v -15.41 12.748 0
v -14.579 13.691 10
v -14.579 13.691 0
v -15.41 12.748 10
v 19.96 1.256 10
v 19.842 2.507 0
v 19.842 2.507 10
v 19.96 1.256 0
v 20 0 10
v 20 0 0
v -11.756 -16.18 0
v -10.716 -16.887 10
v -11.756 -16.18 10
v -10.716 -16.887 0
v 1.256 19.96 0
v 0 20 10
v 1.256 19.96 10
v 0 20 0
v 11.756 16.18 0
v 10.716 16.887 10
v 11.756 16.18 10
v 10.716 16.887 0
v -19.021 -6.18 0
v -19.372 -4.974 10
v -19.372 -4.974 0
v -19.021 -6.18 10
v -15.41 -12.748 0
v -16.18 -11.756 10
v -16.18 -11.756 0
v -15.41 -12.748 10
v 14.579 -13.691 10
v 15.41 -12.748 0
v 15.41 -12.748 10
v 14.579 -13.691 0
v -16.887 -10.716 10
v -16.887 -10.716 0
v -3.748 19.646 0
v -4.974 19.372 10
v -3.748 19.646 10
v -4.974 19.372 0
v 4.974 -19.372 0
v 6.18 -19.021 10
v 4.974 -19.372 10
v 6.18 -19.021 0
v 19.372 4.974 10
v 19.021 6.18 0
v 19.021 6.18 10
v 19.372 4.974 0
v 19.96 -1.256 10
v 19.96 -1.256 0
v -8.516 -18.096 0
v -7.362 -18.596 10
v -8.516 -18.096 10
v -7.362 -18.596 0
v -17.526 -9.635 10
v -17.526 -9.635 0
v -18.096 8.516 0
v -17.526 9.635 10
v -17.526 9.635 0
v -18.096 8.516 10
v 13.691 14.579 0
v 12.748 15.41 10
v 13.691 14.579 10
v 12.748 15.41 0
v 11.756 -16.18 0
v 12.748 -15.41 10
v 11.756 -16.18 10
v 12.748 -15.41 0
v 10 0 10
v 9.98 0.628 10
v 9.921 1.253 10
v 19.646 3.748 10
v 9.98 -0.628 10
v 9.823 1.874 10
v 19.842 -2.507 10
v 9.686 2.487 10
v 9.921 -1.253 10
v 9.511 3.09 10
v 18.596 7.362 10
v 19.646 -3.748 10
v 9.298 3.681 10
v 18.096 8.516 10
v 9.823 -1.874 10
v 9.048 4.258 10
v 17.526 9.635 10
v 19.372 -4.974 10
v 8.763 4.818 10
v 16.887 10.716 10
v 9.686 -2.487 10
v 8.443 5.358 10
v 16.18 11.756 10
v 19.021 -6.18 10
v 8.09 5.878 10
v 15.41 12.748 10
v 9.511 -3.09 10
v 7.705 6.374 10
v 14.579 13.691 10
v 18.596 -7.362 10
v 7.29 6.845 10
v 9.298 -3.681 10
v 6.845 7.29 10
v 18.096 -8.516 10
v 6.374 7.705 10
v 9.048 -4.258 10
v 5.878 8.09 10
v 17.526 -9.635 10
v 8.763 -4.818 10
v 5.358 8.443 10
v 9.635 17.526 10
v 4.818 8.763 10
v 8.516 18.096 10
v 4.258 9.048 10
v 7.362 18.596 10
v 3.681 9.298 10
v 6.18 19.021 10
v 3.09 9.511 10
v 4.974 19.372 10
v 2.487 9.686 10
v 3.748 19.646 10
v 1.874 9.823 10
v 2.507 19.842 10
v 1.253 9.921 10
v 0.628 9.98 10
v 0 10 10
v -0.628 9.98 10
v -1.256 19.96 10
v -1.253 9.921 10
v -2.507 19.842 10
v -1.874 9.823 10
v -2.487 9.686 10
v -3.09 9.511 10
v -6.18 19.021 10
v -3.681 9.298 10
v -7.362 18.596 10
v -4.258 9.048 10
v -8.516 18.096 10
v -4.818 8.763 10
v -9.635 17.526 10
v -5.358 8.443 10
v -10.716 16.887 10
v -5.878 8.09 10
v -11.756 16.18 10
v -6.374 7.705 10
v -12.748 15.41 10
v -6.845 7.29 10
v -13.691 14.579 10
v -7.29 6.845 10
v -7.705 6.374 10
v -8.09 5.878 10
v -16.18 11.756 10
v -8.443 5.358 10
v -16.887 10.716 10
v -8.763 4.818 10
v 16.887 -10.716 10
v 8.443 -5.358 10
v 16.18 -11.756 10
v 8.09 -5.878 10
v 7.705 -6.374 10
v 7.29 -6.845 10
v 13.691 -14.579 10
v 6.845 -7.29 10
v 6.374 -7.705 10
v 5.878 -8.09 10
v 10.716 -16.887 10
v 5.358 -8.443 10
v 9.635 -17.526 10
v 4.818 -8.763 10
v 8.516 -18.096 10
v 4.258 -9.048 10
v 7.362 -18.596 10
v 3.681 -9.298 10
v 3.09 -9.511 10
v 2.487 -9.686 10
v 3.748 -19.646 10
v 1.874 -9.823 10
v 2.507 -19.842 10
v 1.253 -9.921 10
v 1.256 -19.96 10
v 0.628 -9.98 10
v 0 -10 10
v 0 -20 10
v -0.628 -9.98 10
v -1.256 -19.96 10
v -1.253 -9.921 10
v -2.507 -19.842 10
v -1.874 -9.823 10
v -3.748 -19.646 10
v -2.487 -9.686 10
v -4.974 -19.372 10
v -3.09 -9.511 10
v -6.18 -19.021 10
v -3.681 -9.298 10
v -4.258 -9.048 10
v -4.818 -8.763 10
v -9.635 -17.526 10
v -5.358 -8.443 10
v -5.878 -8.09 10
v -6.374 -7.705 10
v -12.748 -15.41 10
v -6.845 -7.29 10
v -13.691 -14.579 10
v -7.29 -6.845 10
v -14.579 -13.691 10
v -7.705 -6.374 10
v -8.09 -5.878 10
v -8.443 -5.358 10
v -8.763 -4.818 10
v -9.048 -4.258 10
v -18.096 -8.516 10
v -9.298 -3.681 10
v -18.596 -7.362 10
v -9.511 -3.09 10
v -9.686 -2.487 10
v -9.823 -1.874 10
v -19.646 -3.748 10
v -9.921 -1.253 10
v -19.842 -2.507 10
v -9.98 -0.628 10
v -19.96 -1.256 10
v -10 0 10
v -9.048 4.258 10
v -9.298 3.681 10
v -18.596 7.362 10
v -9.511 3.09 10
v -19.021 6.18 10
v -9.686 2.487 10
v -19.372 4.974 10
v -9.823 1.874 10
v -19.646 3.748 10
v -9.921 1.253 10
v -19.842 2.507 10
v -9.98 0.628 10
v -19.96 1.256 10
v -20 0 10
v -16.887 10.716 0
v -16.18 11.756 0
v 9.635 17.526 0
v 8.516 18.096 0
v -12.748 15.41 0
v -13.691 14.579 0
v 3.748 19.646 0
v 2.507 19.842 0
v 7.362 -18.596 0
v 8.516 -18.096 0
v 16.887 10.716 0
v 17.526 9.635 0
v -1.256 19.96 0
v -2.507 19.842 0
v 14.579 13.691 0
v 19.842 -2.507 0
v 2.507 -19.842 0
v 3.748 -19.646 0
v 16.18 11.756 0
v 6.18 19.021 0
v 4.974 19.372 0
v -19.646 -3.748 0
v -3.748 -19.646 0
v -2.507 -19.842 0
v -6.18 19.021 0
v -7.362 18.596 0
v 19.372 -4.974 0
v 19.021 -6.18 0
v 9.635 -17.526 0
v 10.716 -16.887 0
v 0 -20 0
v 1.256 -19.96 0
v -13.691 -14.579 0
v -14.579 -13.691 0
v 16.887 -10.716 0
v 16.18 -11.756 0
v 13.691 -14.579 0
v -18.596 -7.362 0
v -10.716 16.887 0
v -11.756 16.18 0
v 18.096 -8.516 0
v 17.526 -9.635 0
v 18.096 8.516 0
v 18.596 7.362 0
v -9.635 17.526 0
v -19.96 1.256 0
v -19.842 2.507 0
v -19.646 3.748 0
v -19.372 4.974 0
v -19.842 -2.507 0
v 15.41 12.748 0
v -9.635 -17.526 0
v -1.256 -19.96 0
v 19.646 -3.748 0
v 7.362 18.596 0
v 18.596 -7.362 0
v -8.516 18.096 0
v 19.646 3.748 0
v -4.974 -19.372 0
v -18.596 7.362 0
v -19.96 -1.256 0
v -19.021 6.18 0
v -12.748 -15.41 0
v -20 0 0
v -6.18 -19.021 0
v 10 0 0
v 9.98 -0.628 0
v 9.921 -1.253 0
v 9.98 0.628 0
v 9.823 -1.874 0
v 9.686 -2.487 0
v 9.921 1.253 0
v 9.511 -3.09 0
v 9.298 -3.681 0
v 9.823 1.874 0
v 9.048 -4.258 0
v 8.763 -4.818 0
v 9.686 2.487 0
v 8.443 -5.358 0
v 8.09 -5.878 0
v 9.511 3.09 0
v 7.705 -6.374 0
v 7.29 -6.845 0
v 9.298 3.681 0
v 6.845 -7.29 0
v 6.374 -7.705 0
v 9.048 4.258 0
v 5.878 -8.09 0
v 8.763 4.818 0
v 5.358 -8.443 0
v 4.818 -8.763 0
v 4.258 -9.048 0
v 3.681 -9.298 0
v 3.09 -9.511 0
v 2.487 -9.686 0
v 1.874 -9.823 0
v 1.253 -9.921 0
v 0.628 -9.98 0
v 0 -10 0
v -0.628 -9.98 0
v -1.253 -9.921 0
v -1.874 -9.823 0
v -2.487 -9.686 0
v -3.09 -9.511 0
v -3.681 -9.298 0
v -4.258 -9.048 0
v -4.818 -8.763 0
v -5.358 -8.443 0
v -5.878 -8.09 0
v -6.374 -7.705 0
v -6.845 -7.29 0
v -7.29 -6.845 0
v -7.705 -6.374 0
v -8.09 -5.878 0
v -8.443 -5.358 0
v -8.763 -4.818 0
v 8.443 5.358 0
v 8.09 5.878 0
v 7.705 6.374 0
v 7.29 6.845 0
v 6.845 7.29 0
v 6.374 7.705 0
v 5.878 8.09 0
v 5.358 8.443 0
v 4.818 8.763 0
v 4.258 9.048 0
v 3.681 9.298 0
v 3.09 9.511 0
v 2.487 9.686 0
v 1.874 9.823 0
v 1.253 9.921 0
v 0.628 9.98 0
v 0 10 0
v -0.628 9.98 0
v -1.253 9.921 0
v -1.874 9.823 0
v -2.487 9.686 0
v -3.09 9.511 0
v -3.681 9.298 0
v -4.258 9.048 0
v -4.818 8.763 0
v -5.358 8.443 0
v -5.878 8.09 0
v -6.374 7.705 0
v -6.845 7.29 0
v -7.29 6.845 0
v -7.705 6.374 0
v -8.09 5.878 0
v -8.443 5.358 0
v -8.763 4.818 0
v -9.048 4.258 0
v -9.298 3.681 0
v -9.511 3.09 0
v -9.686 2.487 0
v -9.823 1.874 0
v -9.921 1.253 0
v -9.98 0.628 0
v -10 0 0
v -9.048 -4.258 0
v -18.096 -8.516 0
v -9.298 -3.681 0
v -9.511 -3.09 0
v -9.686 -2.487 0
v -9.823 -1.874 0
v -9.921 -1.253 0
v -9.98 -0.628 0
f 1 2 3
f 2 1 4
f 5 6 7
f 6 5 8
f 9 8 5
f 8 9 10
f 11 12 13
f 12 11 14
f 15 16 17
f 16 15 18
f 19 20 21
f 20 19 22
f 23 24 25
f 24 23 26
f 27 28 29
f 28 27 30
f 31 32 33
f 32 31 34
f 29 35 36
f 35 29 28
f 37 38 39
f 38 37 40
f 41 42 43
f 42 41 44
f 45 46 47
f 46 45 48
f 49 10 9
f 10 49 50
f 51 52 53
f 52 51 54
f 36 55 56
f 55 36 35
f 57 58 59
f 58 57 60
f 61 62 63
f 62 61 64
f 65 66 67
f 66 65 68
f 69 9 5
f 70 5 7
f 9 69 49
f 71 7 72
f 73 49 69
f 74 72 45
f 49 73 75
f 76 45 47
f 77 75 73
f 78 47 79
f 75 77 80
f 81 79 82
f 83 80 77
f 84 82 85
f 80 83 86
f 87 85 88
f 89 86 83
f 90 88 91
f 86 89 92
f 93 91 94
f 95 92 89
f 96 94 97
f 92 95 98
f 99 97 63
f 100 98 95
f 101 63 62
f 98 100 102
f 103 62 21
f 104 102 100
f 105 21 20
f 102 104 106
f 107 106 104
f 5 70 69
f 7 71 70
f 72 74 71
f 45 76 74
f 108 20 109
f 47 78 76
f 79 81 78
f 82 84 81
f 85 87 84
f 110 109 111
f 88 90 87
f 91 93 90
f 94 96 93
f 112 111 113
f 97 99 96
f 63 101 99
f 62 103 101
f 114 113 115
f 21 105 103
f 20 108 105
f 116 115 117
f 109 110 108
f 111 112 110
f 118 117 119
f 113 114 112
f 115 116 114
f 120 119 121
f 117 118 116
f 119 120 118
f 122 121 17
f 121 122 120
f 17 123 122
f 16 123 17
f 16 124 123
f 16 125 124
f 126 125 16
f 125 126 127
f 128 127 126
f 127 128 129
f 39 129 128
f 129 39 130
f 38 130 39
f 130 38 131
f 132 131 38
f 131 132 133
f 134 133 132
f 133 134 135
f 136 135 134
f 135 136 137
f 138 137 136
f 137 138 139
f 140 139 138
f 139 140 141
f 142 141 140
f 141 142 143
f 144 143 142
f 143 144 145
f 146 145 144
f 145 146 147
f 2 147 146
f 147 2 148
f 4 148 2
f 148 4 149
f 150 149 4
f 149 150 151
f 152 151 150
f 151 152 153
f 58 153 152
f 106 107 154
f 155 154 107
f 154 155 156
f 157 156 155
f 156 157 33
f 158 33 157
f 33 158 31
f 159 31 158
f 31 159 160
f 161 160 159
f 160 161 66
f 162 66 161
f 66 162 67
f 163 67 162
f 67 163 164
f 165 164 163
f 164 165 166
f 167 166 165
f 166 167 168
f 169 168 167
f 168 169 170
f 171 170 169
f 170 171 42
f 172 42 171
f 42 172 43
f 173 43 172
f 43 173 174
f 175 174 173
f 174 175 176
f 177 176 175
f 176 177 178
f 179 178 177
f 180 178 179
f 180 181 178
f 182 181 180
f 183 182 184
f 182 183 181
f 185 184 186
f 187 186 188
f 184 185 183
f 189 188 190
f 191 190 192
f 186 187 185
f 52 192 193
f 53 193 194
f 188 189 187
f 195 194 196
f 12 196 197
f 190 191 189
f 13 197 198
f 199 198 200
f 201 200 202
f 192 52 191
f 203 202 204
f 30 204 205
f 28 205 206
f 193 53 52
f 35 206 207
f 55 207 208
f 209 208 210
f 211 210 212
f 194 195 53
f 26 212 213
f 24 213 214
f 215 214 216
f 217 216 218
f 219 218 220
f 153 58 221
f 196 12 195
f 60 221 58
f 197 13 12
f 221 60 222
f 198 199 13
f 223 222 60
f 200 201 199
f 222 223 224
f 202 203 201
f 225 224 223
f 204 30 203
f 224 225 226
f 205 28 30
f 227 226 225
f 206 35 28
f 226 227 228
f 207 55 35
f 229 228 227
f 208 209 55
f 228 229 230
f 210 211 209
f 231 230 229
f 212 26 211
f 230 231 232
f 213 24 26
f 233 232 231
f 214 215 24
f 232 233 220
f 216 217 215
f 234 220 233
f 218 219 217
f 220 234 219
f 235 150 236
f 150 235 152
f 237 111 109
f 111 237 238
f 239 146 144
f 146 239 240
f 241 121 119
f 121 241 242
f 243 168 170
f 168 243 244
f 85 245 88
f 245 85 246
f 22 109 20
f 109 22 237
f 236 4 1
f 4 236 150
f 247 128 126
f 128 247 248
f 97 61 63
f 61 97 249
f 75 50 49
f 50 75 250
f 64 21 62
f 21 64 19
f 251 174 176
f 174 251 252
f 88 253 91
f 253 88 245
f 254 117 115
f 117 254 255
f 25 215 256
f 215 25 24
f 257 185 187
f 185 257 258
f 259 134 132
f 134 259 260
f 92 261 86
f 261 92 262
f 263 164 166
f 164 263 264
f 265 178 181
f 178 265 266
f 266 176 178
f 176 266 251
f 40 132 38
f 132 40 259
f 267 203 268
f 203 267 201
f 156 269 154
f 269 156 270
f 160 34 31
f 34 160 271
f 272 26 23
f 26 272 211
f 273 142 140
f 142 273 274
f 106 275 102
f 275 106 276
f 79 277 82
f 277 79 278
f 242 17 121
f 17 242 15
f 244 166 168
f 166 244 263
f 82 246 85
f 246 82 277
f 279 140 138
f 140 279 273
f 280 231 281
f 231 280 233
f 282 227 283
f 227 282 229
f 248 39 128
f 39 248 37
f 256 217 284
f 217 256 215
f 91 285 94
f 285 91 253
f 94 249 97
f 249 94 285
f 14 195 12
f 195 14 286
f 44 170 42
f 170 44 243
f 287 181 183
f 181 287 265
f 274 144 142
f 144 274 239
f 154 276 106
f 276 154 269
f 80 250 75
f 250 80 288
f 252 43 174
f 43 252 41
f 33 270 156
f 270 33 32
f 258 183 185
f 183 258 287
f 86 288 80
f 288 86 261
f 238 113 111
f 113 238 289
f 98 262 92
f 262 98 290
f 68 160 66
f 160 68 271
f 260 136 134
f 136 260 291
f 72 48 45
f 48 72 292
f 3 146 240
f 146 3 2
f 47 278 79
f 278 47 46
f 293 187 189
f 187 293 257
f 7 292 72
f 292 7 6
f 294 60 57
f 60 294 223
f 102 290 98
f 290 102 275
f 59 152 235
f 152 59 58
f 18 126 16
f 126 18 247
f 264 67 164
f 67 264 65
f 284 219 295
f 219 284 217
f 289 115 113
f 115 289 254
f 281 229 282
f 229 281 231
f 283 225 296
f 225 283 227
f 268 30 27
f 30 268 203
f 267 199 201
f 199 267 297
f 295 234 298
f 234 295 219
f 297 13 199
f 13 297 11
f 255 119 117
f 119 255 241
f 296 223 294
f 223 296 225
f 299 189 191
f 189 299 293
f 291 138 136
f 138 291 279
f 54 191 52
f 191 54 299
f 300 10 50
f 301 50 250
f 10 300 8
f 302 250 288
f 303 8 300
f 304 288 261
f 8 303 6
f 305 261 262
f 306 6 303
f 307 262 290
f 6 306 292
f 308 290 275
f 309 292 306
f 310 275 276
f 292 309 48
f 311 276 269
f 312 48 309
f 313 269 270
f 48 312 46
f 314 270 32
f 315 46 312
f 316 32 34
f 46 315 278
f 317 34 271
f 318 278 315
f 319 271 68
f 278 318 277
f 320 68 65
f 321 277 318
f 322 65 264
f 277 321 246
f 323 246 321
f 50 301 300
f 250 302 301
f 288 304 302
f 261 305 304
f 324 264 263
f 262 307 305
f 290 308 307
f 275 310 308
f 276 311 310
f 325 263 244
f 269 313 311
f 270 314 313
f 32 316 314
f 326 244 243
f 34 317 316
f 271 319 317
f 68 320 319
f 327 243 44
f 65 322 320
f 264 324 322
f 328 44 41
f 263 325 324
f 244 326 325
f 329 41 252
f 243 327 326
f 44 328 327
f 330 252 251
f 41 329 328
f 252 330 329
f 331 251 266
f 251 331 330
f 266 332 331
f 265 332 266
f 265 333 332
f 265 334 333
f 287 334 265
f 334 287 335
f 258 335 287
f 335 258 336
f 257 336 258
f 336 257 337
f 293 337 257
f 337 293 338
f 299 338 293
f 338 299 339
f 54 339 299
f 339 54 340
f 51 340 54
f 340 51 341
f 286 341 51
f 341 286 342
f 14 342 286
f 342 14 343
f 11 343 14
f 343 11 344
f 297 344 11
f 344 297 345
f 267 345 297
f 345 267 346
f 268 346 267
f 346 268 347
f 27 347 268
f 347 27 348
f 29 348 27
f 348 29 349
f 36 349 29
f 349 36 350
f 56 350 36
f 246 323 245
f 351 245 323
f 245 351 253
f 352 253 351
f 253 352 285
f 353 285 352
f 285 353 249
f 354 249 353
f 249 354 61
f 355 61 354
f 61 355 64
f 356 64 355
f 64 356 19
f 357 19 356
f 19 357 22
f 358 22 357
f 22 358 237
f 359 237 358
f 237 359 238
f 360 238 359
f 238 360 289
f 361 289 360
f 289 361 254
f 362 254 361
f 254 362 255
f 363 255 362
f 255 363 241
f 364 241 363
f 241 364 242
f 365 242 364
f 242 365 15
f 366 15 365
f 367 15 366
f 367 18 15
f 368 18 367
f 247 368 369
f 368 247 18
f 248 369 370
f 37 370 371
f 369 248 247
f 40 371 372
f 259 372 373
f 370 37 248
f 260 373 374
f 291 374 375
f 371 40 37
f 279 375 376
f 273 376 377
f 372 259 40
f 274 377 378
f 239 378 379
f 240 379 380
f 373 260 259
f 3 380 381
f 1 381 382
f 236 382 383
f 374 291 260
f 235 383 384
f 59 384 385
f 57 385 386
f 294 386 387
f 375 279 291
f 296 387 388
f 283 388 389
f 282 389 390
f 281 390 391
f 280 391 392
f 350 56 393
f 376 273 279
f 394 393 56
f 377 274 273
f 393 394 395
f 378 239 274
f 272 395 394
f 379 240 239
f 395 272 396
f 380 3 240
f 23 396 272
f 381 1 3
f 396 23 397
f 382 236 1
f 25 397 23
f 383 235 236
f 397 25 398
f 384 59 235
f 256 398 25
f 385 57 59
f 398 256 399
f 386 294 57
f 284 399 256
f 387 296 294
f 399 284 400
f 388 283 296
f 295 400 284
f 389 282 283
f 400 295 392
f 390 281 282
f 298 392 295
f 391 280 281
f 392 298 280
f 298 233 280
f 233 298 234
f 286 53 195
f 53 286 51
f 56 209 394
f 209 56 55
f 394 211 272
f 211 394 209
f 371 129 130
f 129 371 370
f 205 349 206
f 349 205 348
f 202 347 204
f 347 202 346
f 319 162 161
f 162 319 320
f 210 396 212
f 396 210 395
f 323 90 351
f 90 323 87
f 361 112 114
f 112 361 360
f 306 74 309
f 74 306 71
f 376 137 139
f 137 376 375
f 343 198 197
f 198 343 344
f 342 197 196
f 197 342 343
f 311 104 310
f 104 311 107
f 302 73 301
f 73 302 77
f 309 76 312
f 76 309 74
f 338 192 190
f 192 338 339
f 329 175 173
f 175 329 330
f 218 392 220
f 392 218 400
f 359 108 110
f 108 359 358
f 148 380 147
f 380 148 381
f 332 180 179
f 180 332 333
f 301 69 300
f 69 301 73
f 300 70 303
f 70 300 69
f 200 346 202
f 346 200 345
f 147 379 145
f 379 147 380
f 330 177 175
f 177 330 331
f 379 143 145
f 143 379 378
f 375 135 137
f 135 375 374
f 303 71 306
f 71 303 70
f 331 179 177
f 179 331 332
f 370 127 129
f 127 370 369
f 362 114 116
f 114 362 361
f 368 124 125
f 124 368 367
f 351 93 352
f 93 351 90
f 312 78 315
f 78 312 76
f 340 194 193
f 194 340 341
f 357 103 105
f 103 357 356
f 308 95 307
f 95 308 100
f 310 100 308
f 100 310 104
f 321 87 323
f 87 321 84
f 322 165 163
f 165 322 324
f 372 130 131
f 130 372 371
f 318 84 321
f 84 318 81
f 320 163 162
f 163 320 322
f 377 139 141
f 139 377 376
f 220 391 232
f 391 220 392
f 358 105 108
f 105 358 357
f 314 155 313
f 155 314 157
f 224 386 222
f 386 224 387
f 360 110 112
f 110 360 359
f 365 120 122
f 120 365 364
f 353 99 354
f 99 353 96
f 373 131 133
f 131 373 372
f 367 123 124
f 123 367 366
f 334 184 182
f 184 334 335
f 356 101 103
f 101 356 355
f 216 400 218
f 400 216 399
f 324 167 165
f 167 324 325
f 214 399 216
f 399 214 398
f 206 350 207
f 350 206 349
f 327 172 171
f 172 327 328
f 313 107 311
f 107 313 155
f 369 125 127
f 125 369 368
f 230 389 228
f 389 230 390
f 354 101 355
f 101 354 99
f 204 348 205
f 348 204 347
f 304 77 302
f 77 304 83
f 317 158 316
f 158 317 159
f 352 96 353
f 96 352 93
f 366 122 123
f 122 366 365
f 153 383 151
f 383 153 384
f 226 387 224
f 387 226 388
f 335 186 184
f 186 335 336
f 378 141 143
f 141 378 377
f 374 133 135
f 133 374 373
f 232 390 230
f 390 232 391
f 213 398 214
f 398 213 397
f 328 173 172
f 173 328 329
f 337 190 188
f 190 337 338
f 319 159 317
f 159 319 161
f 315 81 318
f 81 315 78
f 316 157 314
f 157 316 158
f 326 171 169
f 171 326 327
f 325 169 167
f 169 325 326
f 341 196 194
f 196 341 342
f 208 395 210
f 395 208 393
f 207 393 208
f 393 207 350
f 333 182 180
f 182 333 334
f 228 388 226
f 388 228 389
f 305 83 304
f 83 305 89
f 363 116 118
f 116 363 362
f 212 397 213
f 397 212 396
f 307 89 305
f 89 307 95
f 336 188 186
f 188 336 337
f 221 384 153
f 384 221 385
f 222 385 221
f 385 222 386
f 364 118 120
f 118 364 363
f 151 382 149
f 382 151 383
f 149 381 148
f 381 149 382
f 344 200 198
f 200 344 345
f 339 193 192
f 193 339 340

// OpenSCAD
// Parameters for the cylindrical ring
outer_diameter = 40;  // Outer diameter of the ring
inner_diameter = 20;  // Inner hole diameter
height = 10;          // Thickness of the ring

difference() {
    // Outer cylinder
    cylinder(h = height, d = outer_diameter, $fn = 100);
    
    // Inner hole
    cylinder(h = height + 1, d = inner_diameter, $fn = 100); // Slightly taller to ensure clean subtraction
}
